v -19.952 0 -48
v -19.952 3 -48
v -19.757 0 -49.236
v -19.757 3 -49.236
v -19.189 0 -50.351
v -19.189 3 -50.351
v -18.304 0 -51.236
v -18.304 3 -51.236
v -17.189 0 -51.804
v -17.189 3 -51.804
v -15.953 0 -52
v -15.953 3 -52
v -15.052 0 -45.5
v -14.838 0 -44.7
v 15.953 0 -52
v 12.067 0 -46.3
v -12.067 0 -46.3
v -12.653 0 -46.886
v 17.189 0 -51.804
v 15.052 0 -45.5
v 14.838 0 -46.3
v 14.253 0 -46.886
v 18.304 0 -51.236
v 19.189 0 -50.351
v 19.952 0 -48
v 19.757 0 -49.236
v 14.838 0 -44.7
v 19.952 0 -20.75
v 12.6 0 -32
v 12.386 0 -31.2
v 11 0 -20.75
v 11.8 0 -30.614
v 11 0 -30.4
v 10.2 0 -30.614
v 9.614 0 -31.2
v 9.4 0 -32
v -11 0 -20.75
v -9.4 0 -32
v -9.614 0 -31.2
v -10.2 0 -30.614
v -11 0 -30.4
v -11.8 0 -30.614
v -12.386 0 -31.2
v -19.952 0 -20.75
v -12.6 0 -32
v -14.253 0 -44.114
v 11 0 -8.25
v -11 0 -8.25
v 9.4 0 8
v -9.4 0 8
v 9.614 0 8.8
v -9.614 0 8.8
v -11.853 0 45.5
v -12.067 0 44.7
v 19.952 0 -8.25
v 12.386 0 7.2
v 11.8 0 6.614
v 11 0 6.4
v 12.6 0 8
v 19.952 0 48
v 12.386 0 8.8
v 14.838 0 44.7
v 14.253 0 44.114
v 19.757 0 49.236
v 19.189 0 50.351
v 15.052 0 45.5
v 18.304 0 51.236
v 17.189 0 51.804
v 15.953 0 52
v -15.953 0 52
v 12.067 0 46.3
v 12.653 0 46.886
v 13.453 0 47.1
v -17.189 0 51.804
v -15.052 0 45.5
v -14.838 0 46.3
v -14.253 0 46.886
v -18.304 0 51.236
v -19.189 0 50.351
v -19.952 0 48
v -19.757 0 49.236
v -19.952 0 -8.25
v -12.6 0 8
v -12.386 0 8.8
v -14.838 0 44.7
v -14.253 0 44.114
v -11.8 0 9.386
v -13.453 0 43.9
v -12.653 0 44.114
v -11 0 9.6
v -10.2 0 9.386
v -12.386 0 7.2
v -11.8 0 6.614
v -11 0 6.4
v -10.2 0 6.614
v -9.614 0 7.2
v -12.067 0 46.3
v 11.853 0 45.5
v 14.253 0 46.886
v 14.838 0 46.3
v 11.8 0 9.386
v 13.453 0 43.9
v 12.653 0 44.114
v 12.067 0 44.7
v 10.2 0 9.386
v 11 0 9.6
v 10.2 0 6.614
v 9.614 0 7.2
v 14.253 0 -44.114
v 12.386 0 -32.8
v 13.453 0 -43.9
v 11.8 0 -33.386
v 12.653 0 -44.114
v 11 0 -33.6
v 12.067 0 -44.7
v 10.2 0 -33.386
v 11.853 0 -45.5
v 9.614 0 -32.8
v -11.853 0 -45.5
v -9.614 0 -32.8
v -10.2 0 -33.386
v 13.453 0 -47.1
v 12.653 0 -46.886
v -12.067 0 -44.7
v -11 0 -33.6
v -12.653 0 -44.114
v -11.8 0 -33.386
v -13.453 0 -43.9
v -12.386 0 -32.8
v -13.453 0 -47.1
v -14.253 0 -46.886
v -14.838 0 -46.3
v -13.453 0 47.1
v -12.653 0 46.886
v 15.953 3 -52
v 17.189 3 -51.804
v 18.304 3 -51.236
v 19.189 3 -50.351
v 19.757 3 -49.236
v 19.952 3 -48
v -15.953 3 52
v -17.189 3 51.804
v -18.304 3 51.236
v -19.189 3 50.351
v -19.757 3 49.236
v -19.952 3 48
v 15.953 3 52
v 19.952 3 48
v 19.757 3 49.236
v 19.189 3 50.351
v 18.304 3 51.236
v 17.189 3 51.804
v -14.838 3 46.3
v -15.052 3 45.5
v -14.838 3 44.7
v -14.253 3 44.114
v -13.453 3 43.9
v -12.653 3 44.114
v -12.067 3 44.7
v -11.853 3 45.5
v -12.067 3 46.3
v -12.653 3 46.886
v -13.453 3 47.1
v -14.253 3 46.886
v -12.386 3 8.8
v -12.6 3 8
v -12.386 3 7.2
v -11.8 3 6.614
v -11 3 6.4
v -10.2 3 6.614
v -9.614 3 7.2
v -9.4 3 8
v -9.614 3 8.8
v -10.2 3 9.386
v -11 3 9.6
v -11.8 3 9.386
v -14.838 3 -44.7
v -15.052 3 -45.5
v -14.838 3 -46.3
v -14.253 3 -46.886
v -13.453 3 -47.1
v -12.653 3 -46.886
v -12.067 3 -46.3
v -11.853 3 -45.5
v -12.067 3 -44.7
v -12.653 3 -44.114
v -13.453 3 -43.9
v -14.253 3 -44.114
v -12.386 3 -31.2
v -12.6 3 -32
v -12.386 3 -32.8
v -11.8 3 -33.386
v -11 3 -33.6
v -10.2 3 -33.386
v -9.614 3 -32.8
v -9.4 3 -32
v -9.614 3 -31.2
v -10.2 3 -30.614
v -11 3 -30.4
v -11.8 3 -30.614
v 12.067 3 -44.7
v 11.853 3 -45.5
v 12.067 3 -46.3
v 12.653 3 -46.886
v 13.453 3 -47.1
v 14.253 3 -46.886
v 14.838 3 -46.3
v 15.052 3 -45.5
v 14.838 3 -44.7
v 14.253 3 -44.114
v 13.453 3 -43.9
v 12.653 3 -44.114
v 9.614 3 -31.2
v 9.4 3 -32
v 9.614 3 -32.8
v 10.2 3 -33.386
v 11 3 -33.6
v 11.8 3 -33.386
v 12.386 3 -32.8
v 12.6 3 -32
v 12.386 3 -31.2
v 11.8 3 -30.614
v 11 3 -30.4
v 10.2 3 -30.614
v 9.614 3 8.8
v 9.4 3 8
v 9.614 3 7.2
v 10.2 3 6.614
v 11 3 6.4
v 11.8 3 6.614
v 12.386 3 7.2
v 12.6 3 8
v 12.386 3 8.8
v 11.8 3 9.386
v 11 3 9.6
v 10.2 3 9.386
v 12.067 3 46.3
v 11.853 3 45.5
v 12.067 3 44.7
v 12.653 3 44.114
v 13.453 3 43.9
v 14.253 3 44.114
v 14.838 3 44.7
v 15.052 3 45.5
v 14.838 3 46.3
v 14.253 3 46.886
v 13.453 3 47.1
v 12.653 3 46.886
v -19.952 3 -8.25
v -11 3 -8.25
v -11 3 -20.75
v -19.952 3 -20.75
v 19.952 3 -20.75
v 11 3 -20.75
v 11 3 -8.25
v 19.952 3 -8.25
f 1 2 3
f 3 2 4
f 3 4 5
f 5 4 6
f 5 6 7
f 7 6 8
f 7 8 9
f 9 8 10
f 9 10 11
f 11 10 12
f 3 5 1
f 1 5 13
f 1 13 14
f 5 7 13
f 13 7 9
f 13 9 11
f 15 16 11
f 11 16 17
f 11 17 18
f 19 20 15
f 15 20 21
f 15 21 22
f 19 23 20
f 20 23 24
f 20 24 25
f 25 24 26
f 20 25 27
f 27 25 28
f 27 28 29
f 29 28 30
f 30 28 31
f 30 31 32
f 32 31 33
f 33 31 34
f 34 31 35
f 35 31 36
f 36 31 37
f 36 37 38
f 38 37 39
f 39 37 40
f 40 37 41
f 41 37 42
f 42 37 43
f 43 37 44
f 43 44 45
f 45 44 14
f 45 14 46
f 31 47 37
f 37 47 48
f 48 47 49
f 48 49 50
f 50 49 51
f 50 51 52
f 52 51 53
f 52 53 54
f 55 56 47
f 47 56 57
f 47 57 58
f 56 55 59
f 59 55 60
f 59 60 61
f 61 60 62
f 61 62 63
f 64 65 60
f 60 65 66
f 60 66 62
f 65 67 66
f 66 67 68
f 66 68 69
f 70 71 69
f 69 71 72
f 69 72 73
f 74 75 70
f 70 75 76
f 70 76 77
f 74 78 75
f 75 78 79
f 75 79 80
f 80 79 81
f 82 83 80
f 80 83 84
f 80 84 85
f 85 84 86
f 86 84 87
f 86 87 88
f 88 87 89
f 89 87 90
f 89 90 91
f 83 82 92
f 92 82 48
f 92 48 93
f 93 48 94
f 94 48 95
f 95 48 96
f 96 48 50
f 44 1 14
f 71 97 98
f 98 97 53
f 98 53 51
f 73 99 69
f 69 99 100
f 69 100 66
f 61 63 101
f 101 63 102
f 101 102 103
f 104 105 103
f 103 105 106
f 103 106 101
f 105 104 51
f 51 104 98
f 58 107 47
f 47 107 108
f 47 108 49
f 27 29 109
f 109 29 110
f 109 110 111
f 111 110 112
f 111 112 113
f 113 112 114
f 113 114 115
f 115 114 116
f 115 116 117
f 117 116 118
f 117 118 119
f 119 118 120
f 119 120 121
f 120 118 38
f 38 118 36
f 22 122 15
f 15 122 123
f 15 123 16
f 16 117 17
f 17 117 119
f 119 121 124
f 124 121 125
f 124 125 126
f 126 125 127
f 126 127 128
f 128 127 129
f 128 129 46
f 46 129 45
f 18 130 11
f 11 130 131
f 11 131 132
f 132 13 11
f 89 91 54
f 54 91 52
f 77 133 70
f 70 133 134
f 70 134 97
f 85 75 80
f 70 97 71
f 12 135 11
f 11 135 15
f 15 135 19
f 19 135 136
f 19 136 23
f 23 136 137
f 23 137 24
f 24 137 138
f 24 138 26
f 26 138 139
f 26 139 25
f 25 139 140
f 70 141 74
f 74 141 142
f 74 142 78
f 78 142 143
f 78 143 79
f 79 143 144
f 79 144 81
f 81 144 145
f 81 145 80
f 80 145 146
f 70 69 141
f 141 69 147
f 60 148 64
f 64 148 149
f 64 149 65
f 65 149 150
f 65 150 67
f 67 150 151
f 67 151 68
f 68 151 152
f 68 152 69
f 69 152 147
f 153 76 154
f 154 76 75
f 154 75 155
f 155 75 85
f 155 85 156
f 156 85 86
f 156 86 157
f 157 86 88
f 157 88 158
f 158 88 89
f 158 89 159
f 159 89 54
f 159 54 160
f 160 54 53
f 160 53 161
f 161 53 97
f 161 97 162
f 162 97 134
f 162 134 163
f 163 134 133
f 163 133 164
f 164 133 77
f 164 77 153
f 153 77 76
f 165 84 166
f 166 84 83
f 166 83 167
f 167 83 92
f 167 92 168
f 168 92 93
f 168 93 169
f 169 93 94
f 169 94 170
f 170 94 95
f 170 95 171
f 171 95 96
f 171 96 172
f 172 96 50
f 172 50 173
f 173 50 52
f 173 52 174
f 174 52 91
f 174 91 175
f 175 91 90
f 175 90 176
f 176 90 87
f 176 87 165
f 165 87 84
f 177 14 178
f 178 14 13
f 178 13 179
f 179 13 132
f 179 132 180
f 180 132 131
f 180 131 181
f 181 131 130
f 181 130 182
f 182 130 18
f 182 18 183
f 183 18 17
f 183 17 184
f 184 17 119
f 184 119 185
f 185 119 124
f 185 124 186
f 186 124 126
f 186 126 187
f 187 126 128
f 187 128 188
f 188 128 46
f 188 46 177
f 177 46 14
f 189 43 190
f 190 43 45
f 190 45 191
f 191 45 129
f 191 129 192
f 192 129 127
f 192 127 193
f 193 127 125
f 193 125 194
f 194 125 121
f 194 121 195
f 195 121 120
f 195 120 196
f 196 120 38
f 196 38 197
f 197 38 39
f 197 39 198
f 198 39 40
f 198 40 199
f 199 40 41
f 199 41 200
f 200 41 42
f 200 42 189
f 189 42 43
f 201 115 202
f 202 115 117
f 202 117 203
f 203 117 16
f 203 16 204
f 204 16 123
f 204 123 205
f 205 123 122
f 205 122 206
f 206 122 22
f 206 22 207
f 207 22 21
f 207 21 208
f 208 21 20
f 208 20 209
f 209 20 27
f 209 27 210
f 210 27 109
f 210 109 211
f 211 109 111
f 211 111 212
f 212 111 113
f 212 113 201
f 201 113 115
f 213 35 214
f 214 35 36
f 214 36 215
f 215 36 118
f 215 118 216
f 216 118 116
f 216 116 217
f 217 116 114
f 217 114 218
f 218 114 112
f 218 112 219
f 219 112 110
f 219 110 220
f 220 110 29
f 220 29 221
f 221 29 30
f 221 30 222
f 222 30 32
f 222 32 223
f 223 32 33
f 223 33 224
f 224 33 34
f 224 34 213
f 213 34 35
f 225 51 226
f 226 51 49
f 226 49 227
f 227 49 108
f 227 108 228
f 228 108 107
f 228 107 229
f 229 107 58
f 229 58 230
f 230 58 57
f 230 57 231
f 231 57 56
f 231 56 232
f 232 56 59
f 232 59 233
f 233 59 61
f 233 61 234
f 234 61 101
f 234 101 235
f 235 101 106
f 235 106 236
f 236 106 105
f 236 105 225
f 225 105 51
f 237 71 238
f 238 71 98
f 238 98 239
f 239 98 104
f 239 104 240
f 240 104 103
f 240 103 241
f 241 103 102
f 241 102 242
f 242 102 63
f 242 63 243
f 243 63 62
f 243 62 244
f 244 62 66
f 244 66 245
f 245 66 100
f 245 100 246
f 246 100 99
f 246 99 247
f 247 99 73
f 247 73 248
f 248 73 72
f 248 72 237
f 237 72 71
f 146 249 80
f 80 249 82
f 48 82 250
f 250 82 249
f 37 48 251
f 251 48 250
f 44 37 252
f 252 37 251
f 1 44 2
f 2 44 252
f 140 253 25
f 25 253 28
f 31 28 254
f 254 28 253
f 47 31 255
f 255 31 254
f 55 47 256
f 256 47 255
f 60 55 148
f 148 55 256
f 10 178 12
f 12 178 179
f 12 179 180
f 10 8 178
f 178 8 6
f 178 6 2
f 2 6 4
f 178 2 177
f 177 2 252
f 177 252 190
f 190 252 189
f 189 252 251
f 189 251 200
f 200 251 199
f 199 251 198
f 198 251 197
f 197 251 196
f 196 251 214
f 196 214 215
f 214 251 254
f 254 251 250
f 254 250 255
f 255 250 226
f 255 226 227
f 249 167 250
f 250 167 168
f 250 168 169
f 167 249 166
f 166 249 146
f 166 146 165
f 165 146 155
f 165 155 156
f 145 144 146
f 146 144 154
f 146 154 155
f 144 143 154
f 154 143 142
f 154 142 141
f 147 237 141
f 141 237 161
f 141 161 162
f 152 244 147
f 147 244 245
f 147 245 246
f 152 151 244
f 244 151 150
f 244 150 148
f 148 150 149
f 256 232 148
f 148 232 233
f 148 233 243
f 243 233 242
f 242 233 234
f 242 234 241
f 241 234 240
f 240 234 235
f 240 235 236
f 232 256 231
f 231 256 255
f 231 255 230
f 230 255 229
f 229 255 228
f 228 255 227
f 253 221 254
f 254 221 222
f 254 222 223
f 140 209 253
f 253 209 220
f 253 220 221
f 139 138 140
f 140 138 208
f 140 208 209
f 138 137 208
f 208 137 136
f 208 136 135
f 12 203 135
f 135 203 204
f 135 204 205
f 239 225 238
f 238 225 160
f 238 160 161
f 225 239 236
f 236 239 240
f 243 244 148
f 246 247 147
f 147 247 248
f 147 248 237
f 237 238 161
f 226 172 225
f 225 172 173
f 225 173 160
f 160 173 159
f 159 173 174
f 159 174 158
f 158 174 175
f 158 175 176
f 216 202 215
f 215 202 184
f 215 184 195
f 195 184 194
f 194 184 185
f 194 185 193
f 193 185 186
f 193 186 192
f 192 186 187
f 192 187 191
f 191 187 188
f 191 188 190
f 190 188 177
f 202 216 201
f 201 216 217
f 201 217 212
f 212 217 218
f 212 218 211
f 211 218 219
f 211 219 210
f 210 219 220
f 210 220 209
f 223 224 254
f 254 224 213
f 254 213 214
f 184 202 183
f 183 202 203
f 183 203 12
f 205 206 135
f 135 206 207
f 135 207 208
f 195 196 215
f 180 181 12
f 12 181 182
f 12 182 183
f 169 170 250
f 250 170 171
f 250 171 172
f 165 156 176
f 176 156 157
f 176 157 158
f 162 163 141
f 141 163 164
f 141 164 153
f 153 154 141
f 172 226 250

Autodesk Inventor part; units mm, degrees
ref_plane "YZ Plane" through (0, 0, 0) normal (1, 0, 0) x (0, 1, 0)
ref_plane "XZ Plane" through (0, 0, 0) normal (0, 1, 0) x (-1, 0, 0)
ref_plane "XY Plane" through (0, 0, 0) normal (0, 0, 1) x (1, 0, 0)
sketch "Sketch1" plane through (0, 0, 0) normal (0, 1, 0) x (-1, 0, 0)
  point P0 (0, 0)
sketch "Sketch2" plane through (0, 0, 0) normal (0, 1, 0) x (-1, 0, 0)
  line L0 (-19.9525, 52) -> (19.9525, 52)
  line L1 (19.9525, 52) -> (19.9525, -52)
  line L2 (19.9525, -52) -> (-19.9525, -52)
  line L3 (-19.9525, -52) -> (-19.9525, 52)
  line L4 (-19.9525, 52) -> (19.9525, -52) construction
  line L5 (19.9525, 52) -> (-19.9525, -52) construction
  circle A0 centre (13.4525, 45.5) radius 1.6
  circle A1 centre (-13.4525, 45.5) radius 1.6
  line L6 (0, 59.3125) -> (0, -64.5558)
  line L7 (36.5125, 0) -> (-39.6875, 0)
  circle A2 centre (13.4525, -45.5) radius 1.6
  circle A3 centre (-13.4525, -45.5) radius 1.6
  line L8 (0, -59.3125) -> (0, 64.5558)
  circle A4 centre (11, 8) radius 1.6
  circle A5 centre (-11, 8) radius 1.6
  circle A6 centre (-11, -32) radius 1.6
  circle A7 centre (11, -32) radius 1.6
  line L9 (-11, -8.25) -> (-20, -8.25)
  line L10 (-20, -20.75) -> (-11, -20.75)
  line L11 (-11, -20.75) -> (-11, -8.25)
  line L12 (-11, -8.25) -> (-20, -20.75) construction
  line L13 (-20, -8.25) -> (-11, -20.75) construction
  line L14 (-11, -8.25) -> (-19.9525, -8.25)
  line L15 (-19.9525, -8.25) -> (-19.9525, -20.75)
  line L16 (-19.9525, -20.75) -> (-11, -20.75)
  line L17 (-11, -20.75) -> (-11, -8.25)
  line L18 (11, -8.25) -> (20, -8.25)
  line L19 (20, -20.75) -> (11, -20.75)
  line L20 (11, -20.75) -> (11, -8.25)
  line L21 (11, -8.25) -> (20, -20.75) construction
  line L22 (20, -8.25) -> (11, -20.75) construction
  line L23 (11, -8.25) -> (19.9525, -8.25)
  line L24 (19.9525, -8.25) -> (19.9525, -20.75)
  line L25 (19.9525, -20.75) -> (11, -20.75)
  line L26 (11, -20.75) -> (11, -8.25)
  point P0 (0, 0)
  point P1 (-15.5, -14.5)
  point P2 (15.5, -14.5)
  point P3 (19.9525, -8.25)
  dimension "d0" = 104
  dimension "d1" = 39.905
  dimension "d2" = 3.2
  dimension "d3" = 3.2
  dimension "d5" = 6.5
  dimension "d7" = 6.5
  dimension "d11" = 3.2
  dimension "d12" = 3.2
  dimension "d13" = 11
  dimension "d14" = 11
  dimension "d15" = 8
  dimension "d16" = 8
  dimension "d17" = 3.2
  dimension "d18" = 3.2
  dimension "d19" = 40
  dimension "d20" = 40
  dimension "d21" = 11
  dimension "d22" = 11
  dimension "d23" = 12.5
  dimension "d24" = 9
  dimension "d25" = 8.25
  dimension "d26" = 11
  dimension "d27" = 6.5
  dimension "d28" = 6.5
extrude "Extrusion1" add sketch "Sketch2" along normal blind 3 contours L0 L6 L7 L3 | L0 L1 L7 L6 | L7 L6 L2 L3 L10 L11 L9 | L7 L1 L18 L20 L19 L2 L6
fillet "Fillet1" radius 4 4 edges at (19.9525, 1.5, 52) (-19.9525, 1.5, 52) (19.9525, 1.5, -52) (-19.9525, 1.5, -52)
sketch "Sketch3" plane through (0, 3, 0) normal (0, 1, 0) x (1, 0, 0)
  circle A0 centre (0, -0.0025) radius 10
  circle A1 centre (11, 32) radius 1.6 projected
  circle A2 centre (-11, 32) radius 1.6 projected
  circle A3 centre (-11, -8) radius 1.6 projected
  circle A4 centre (11, -8) radius 1.6 projected
  point P0 (0, 0)
  dimension "d35" = 13.6
  dimension "d36" = 13.6
properties part number "bottom"
